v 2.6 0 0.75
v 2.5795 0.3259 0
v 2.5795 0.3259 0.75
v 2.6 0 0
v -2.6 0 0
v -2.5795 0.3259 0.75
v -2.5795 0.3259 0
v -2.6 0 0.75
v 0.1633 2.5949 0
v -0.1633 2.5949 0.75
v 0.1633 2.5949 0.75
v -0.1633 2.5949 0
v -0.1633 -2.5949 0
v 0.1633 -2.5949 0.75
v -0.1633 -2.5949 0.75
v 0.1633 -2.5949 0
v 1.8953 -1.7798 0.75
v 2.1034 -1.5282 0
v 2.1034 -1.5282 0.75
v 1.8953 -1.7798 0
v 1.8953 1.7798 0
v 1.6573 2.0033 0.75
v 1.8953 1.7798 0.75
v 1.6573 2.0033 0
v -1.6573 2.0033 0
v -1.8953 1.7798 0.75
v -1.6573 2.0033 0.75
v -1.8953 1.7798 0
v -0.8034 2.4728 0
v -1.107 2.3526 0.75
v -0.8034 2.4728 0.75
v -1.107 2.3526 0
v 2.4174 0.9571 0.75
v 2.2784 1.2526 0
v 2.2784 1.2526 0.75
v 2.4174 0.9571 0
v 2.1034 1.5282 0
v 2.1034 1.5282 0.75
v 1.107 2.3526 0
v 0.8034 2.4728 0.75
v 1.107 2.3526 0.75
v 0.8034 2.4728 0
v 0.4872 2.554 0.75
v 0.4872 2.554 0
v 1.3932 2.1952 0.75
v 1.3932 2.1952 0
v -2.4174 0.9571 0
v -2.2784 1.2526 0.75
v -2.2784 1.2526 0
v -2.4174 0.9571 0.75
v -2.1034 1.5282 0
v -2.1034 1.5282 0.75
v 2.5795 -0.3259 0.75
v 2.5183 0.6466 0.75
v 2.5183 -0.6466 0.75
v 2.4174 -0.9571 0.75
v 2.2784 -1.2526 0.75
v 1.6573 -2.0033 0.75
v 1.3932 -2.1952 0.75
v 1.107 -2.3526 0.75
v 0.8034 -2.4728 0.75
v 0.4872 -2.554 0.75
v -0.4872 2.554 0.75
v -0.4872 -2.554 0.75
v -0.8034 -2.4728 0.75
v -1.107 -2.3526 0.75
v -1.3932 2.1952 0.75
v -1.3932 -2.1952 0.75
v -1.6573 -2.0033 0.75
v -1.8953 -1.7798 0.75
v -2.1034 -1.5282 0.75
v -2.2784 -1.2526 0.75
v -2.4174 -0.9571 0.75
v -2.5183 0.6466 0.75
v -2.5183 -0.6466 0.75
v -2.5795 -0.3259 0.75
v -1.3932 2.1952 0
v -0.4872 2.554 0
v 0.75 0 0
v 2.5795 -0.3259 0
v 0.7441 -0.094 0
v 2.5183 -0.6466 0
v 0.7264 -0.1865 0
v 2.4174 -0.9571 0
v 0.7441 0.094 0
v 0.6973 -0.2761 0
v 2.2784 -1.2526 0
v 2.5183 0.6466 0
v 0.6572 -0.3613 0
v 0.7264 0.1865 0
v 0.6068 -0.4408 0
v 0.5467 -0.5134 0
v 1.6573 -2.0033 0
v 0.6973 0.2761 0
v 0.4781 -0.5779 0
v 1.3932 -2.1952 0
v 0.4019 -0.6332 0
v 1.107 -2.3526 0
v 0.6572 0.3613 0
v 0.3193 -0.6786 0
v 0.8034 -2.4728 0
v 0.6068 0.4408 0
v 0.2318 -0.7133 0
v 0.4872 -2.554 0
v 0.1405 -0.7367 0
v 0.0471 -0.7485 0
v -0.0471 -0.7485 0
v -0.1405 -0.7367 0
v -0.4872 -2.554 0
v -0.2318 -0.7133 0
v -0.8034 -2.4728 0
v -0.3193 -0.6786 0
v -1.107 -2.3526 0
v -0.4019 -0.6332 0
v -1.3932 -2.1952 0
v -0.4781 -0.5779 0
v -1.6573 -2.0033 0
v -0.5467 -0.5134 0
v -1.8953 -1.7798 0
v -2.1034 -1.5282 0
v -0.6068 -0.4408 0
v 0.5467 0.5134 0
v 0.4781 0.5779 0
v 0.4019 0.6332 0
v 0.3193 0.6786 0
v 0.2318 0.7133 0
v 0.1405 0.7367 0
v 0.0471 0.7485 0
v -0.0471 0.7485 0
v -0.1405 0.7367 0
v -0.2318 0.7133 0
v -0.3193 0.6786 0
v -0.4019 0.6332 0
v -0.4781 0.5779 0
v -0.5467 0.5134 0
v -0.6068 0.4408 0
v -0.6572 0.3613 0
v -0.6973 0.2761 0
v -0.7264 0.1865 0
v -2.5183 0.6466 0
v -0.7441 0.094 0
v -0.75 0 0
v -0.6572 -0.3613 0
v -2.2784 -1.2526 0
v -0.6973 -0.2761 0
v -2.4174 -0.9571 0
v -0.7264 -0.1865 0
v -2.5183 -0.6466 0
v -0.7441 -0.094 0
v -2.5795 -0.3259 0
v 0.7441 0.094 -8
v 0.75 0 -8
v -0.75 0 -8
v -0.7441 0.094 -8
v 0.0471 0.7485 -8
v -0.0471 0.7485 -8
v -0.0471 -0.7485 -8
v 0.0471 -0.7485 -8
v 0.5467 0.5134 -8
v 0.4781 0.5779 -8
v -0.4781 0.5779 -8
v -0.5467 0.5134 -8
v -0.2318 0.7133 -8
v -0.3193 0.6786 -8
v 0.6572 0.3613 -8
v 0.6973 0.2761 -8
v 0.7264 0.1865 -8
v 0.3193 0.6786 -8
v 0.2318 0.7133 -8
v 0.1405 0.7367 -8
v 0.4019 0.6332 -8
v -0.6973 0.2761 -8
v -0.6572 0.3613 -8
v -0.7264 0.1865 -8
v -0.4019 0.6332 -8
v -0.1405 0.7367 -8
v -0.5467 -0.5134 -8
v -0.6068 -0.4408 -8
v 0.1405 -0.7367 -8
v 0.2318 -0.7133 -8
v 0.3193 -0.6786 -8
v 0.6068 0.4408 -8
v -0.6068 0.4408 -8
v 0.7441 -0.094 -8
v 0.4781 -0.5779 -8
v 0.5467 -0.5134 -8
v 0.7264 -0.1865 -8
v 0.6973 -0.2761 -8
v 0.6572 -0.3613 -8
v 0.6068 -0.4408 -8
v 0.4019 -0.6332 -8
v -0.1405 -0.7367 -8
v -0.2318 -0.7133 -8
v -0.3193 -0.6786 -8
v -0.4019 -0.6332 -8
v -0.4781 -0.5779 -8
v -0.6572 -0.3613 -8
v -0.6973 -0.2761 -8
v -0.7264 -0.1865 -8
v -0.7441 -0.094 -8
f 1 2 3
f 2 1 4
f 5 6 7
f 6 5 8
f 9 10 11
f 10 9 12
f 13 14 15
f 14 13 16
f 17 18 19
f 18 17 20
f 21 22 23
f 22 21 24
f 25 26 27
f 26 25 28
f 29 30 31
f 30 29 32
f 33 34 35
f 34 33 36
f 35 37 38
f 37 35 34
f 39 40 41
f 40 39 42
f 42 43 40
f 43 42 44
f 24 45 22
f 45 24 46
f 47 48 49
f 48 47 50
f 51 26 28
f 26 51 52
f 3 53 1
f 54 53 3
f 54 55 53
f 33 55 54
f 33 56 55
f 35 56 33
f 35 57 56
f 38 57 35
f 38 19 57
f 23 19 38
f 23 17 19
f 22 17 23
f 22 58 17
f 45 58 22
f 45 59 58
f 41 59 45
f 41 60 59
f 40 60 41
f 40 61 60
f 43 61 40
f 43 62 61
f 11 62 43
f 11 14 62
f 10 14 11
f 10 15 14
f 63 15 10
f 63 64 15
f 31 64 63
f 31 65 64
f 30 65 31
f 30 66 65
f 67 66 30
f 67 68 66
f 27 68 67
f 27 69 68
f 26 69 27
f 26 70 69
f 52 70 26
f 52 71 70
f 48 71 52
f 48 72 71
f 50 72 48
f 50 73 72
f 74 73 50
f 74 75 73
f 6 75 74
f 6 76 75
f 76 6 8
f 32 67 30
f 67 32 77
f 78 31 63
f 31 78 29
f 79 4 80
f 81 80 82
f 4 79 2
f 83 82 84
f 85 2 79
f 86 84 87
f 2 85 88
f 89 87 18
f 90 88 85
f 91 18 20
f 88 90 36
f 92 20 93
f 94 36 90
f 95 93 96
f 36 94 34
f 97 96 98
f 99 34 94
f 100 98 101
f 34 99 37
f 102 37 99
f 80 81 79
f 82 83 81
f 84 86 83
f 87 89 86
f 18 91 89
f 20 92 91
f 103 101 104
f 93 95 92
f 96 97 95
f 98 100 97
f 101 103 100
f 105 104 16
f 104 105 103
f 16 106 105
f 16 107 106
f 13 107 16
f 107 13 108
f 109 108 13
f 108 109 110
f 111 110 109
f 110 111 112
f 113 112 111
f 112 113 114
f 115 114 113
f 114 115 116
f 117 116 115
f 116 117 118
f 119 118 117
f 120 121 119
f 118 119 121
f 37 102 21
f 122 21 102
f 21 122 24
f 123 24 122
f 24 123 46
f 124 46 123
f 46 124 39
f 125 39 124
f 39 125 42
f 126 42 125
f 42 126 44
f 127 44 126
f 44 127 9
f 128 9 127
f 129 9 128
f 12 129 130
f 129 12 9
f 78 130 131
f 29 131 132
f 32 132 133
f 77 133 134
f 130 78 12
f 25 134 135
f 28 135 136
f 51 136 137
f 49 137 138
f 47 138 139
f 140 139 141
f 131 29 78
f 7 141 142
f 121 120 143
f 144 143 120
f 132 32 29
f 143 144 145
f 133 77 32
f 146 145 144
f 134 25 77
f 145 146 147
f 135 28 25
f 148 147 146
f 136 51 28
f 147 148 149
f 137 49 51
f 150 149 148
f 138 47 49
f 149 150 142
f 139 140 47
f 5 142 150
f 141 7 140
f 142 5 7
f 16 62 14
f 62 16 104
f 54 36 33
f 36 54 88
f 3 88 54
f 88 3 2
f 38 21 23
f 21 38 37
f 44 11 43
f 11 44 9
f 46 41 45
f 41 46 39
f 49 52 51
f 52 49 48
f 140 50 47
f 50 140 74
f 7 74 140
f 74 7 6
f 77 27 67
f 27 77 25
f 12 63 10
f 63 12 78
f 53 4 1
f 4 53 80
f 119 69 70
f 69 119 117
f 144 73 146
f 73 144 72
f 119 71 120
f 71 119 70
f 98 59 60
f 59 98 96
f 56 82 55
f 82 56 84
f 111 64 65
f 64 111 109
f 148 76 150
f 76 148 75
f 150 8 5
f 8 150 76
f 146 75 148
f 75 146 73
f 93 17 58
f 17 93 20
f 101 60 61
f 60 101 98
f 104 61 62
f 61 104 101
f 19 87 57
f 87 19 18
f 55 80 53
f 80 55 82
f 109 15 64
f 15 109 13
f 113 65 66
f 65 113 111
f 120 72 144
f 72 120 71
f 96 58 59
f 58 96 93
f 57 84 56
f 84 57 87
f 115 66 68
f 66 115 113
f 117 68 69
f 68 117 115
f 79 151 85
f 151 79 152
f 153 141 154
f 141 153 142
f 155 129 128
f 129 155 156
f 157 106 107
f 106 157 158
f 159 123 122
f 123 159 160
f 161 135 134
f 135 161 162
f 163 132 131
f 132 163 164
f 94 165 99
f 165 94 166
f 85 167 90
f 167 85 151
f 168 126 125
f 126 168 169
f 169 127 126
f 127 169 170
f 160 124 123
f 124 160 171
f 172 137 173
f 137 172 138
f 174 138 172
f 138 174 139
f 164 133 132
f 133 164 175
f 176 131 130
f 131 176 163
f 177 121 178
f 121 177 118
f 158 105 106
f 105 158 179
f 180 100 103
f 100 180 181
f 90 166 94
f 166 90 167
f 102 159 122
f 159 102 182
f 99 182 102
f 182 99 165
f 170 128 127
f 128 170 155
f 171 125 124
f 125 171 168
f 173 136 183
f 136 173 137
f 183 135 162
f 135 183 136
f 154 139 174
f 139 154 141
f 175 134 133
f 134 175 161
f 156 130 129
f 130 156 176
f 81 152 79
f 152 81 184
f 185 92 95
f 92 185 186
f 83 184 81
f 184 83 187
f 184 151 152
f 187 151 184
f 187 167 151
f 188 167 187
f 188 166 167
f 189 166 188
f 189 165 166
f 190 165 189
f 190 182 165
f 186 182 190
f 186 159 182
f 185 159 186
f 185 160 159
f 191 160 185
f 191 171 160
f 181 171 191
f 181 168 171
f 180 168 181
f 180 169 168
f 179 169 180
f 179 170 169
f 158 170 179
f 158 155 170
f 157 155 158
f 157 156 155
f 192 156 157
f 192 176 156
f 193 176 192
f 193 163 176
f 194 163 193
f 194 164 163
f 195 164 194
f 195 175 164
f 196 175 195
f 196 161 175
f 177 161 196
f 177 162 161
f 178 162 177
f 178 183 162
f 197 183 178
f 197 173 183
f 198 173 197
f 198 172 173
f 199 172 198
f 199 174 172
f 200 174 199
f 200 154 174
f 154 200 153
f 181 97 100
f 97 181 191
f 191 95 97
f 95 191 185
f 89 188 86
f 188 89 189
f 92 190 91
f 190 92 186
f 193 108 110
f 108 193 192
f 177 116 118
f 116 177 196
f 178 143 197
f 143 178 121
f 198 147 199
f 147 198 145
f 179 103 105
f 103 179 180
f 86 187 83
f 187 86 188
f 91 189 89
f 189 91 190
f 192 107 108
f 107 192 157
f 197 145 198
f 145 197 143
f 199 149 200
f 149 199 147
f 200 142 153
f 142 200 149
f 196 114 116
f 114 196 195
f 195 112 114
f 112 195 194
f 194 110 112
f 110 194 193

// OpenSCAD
$fn = 50;


difference() {
	union() {
		translate(v = [0, 0, 0]) {
			rotate(a = [0, 0, 0]) {
				cylinder(h = 0.7500000000, r = 2.6000000000);
			}
		}
		translate(v = [0, 0, -8]) {
			rotate(a = [0, 0, 0]) {
				cylinder(h = 8, r = 0.7500000000);
			}
		}
	}
	union();
}
